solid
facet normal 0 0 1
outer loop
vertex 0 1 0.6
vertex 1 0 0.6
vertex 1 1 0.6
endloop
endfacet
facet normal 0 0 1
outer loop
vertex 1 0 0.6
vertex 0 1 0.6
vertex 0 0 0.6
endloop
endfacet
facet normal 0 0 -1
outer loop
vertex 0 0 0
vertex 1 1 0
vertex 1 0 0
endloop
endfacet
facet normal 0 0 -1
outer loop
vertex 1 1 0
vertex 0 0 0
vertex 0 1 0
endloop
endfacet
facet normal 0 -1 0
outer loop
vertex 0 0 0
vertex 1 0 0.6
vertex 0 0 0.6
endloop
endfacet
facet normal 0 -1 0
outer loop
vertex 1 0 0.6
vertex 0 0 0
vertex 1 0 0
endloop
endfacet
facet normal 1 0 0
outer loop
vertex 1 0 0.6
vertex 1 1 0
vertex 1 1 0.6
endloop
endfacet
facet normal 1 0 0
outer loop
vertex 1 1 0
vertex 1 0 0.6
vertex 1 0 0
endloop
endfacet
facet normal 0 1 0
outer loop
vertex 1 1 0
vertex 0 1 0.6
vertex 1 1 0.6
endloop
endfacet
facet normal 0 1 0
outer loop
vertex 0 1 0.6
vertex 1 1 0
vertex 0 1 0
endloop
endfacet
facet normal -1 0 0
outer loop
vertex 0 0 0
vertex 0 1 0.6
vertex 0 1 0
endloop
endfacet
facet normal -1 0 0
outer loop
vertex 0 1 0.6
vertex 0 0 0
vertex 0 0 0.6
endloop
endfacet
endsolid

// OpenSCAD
/* Warning, this is a very basic generator with a lot of approximation 
input data : [UQFN, 5XX, 1x1x0.6mm, 4, , B, C04-00393B]
generated by com.zoubworld.electronics.cad.model3d.Basic
Date : Sun Feb 15 10:50:48 CET 2026
*/

//body
color("black")
translate([0,0,0])
cube([1.0,1.0,0.6], center=false);
